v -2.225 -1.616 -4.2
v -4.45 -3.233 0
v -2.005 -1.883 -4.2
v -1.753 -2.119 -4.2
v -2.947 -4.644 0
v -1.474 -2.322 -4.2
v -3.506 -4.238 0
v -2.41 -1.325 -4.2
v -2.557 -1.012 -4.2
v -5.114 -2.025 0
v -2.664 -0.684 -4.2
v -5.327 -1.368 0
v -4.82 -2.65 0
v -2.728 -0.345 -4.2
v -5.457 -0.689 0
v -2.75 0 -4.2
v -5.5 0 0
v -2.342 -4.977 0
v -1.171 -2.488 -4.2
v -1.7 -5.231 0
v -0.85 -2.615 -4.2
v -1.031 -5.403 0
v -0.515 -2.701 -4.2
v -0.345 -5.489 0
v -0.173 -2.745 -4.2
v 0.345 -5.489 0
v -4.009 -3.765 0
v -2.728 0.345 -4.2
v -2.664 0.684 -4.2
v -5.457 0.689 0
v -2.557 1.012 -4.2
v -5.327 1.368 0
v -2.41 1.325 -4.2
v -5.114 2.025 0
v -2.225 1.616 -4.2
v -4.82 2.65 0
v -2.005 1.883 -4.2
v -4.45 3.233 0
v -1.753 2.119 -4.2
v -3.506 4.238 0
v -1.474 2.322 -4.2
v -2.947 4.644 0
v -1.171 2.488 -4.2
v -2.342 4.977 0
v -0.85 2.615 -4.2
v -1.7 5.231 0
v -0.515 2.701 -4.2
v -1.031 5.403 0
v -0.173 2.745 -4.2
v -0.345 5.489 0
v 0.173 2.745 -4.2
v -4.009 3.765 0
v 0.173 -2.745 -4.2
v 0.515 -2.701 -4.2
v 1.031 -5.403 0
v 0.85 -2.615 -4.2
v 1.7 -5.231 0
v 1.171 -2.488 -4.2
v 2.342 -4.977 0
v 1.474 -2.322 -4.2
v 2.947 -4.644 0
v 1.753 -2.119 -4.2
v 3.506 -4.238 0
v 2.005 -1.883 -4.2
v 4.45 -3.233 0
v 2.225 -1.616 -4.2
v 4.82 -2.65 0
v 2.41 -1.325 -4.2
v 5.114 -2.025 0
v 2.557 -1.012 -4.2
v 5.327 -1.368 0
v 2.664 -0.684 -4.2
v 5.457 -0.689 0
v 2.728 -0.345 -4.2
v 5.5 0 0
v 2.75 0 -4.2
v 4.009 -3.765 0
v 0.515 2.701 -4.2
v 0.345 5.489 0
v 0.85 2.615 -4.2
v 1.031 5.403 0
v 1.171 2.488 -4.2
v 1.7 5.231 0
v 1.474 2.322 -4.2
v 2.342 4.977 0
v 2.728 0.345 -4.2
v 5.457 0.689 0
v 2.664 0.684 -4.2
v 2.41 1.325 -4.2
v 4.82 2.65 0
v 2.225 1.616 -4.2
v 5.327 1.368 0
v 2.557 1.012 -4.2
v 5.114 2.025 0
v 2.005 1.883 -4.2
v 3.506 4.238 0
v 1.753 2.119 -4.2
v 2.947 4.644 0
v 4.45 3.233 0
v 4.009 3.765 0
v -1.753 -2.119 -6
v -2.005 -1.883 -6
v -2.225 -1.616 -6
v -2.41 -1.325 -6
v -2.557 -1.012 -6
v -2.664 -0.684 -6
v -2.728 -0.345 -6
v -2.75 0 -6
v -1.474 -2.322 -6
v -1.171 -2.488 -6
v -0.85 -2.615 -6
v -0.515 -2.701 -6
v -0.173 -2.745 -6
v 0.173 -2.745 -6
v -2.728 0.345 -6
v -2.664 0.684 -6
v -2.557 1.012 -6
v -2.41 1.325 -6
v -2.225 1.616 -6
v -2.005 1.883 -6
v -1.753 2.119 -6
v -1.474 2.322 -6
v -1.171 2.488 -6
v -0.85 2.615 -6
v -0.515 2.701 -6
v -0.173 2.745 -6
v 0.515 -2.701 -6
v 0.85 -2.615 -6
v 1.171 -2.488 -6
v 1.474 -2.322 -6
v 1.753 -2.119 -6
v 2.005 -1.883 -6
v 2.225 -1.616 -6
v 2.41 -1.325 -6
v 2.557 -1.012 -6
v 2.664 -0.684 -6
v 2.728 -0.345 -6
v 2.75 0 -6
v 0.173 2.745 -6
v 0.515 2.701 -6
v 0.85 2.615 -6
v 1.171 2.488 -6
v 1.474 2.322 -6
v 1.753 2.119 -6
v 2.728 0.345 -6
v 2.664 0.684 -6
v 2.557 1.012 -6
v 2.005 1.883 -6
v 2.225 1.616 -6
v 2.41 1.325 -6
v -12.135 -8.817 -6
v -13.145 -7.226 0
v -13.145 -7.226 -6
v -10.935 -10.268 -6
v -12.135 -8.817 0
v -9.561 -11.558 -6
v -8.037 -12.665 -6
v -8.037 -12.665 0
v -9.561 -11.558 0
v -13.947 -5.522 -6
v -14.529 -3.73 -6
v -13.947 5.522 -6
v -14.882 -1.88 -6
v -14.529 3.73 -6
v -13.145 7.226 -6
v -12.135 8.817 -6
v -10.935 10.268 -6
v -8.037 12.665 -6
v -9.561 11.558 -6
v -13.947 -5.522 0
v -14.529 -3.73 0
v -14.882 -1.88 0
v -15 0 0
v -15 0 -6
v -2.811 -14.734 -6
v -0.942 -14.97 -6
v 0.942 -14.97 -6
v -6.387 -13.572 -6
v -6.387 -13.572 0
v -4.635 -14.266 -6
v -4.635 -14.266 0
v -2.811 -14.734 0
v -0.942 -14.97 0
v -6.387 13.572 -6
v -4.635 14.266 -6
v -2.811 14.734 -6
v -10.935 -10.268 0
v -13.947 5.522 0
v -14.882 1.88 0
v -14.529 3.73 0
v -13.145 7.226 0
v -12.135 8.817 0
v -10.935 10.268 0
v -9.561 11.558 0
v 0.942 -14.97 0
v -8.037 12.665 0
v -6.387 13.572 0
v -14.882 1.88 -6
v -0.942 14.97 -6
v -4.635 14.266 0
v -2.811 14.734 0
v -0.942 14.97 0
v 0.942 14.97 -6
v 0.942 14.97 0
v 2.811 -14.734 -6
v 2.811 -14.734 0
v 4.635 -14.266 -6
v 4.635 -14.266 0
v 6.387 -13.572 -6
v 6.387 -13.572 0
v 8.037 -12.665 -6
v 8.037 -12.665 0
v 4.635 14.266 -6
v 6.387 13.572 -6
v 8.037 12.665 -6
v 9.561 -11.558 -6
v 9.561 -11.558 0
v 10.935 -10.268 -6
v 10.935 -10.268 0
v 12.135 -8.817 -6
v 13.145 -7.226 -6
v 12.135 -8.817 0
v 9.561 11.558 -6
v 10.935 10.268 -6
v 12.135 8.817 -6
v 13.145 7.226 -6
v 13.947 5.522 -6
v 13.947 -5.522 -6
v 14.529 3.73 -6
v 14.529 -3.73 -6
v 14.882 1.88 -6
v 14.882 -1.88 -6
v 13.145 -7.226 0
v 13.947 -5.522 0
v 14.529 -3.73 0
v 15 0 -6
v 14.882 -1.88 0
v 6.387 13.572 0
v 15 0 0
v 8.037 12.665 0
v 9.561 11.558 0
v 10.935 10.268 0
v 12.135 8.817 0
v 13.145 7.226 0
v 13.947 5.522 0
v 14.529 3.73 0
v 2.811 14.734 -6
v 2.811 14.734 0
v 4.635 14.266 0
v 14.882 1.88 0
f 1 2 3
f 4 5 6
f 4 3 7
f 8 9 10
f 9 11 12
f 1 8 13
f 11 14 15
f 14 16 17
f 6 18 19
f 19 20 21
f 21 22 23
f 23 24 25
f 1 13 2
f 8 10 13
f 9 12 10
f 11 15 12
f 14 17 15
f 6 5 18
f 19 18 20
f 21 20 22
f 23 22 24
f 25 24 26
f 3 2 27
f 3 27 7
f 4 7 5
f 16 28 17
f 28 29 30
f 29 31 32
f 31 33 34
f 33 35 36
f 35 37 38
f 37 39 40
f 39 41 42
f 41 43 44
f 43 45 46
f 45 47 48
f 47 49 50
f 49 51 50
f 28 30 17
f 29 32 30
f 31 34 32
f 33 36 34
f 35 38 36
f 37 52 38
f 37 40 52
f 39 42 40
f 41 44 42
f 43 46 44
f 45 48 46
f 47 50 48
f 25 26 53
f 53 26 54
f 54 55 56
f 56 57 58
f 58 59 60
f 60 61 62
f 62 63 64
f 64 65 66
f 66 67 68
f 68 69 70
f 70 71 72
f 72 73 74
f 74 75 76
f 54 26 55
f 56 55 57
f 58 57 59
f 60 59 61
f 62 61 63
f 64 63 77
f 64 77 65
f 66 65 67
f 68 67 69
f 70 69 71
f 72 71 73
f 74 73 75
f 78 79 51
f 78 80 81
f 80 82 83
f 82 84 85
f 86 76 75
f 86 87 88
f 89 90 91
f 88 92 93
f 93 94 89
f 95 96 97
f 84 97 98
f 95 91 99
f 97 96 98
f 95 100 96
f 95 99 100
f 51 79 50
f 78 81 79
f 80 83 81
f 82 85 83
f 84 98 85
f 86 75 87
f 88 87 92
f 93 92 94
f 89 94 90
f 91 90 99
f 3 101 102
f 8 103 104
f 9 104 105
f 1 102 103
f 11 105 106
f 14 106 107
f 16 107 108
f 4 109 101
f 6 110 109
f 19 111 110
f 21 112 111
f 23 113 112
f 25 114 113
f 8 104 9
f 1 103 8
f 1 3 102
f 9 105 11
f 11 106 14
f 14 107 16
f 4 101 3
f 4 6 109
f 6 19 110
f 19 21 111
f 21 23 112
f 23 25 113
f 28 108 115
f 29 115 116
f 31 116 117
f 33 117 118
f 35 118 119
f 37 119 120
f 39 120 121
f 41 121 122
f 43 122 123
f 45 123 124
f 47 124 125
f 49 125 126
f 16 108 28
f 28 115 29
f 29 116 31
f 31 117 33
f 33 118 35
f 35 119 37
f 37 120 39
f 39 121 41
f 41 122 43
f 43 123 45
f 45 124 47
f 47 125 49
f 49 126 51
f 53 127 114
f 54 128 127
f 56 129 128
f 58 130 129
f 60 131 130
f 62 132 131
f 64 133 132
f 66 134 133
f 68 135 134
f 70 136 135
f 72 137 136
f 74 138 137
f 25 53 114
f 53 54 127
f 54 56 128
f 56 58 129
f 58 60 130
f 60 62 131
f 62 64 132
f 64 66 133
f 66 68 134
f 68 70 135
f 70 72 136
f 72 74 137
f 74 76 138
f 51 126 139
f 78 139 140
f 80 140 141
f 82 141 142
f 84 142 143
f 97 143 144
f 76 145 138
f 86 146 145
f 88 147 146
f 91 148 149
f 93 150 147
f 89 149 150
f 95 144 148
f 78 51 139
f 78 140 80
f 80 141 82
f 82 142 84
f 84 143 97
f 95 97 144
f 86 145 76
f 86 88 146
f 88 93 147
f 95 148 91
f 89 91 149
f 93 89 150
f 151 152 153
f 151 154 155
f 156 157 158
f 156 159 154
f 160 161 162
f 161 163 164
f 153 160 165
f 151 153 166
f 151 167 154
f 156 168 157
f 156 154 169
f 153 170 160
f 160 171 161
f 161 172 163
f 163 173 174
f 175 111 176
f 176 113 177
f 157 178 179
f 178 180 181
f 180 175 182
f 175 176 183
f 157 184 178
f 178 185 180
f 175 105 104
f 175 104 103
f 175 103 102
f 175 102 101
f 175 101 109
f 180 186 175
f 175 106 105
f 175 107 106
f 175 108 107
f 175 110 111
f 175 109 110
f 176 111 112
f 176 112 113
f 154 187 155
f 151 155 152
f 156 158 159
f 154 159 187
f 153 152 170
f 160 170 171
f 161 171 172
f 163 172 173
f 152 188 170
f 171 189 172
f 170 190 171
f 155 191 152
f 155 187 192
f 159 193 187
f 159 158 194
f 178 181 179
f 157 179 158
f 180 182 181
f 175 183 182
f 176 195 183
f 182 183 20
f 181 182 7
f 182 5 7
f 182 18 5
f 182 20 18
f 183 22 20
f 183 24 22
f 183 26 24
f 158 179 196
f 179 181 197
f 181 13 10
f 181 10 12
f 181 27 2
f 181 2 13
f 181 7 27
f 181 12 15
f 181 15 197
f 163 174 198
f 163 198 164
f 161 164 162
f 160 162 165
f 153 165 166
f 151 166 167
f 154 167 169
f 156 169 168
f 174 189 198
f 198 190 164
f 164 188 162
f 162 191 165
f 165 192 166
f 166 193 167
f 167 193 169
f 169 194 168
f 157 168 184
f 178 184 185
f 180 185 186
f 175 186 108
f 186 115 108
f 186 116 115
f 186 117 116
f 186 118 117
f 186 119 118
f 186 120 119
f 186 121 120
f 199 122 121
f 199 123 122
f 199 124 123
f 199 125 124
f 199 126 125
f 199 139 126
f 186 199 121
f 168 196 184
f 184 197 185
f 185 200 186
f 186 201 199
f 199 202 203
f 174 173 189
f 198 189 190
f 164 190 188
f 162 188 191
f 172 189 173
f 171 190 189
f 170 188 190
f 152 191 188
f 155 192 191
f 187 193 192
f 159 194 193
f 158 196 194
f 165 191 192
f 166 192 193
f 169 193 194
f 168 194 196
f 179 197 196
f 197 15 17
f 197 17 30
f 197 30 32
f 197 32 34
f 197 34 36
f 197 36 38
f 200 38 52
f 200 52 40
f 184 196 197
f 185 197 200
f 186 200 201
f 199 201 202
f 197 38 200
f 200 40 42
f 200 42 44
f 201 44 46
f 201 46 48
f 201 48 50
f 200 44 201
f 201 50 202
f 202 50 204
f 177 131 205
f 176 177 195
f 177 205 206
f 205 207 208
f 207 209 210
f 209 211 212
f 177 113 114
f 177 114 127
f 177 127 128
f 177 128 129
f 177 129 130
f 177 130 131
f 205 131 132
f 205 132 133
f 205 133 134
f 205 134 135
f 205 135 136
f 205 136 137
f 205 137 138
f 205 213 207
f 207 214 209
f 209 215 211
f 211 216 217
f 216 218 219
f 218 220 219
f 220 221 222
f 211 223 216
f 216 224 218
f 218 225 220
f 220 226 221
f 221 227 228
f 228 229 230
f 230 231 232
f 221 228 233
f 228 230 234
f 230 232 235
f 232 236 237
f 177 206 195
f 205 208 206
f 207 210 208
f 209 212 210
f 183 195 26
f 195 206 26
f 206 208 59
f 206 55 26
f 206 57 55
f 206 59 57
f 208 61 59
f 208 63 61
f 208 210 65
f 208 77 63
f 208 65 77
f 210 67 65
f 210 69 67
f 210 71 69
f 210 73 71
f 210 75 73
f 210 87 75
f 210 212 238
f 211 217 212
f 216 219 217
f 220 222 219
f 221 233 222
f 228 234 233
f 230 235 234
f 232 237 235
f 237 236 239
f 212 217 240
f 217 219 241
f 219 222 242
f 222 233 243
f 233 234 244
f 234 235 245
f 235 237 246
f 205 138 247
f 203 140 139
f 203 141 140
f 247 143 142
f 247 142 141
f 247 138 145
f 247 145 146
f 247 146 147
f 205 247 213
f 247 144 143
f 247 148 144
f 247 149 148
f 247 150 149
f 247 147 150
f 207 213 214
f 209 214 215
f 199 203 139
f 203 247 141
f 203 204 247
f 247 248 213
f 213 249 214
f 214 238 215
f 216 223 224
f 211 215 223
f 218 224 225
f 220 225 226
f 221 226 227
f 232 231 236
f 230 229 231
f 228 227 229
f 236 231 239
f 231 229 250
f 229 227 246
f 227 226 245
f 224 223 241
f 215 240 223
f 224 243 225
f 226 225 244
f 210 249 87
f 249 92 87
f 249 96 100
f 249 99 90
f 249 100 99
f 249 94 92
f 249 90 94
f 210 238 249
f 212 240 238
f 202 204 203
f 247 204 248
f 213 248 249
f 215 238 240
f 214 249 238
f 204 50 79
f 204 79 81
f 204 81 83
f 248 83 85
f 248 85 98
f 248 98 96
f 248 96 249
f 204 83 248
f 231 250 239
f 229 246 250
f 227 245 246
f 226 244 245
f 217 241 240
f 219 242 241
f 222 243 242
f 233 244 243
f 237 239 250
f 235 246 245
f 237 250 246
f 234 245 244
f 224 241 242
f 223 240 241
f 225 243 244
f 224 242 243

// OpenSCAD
$fn = 50;


difference() {
	union() {
		translate(v = [0, 0, -6.0000000000]) {
			cylinder(h = 6, r = 15.0000000000);
		}
	}
	union() {
		translate(v = [0, 0, 0]) {
			rotate(a = [0, 0, 0]) {
				difference() {
					union() {
						translate(v = [0, 0, -9.0000000000]) {
							cylinder(h = 9, r = 2.2500000000);
						}
						translate(v = [0, 0, -4.2000000000]) {
							cylinder(h = 4.2000000000, r1 = 2.7500000000, r2 = 5.5000000000);
						}
						translate(v = [0, 0, -9.0000000000]) {
							cylinder(h = 9, r = 2.7500000000);
						}
						translate(v = [0, 0, -9.0000000000]) {
							cylinder(h = 9, r = 2.2500000000);
						}
					}
					union();
				}
			}
		}
	}
}
